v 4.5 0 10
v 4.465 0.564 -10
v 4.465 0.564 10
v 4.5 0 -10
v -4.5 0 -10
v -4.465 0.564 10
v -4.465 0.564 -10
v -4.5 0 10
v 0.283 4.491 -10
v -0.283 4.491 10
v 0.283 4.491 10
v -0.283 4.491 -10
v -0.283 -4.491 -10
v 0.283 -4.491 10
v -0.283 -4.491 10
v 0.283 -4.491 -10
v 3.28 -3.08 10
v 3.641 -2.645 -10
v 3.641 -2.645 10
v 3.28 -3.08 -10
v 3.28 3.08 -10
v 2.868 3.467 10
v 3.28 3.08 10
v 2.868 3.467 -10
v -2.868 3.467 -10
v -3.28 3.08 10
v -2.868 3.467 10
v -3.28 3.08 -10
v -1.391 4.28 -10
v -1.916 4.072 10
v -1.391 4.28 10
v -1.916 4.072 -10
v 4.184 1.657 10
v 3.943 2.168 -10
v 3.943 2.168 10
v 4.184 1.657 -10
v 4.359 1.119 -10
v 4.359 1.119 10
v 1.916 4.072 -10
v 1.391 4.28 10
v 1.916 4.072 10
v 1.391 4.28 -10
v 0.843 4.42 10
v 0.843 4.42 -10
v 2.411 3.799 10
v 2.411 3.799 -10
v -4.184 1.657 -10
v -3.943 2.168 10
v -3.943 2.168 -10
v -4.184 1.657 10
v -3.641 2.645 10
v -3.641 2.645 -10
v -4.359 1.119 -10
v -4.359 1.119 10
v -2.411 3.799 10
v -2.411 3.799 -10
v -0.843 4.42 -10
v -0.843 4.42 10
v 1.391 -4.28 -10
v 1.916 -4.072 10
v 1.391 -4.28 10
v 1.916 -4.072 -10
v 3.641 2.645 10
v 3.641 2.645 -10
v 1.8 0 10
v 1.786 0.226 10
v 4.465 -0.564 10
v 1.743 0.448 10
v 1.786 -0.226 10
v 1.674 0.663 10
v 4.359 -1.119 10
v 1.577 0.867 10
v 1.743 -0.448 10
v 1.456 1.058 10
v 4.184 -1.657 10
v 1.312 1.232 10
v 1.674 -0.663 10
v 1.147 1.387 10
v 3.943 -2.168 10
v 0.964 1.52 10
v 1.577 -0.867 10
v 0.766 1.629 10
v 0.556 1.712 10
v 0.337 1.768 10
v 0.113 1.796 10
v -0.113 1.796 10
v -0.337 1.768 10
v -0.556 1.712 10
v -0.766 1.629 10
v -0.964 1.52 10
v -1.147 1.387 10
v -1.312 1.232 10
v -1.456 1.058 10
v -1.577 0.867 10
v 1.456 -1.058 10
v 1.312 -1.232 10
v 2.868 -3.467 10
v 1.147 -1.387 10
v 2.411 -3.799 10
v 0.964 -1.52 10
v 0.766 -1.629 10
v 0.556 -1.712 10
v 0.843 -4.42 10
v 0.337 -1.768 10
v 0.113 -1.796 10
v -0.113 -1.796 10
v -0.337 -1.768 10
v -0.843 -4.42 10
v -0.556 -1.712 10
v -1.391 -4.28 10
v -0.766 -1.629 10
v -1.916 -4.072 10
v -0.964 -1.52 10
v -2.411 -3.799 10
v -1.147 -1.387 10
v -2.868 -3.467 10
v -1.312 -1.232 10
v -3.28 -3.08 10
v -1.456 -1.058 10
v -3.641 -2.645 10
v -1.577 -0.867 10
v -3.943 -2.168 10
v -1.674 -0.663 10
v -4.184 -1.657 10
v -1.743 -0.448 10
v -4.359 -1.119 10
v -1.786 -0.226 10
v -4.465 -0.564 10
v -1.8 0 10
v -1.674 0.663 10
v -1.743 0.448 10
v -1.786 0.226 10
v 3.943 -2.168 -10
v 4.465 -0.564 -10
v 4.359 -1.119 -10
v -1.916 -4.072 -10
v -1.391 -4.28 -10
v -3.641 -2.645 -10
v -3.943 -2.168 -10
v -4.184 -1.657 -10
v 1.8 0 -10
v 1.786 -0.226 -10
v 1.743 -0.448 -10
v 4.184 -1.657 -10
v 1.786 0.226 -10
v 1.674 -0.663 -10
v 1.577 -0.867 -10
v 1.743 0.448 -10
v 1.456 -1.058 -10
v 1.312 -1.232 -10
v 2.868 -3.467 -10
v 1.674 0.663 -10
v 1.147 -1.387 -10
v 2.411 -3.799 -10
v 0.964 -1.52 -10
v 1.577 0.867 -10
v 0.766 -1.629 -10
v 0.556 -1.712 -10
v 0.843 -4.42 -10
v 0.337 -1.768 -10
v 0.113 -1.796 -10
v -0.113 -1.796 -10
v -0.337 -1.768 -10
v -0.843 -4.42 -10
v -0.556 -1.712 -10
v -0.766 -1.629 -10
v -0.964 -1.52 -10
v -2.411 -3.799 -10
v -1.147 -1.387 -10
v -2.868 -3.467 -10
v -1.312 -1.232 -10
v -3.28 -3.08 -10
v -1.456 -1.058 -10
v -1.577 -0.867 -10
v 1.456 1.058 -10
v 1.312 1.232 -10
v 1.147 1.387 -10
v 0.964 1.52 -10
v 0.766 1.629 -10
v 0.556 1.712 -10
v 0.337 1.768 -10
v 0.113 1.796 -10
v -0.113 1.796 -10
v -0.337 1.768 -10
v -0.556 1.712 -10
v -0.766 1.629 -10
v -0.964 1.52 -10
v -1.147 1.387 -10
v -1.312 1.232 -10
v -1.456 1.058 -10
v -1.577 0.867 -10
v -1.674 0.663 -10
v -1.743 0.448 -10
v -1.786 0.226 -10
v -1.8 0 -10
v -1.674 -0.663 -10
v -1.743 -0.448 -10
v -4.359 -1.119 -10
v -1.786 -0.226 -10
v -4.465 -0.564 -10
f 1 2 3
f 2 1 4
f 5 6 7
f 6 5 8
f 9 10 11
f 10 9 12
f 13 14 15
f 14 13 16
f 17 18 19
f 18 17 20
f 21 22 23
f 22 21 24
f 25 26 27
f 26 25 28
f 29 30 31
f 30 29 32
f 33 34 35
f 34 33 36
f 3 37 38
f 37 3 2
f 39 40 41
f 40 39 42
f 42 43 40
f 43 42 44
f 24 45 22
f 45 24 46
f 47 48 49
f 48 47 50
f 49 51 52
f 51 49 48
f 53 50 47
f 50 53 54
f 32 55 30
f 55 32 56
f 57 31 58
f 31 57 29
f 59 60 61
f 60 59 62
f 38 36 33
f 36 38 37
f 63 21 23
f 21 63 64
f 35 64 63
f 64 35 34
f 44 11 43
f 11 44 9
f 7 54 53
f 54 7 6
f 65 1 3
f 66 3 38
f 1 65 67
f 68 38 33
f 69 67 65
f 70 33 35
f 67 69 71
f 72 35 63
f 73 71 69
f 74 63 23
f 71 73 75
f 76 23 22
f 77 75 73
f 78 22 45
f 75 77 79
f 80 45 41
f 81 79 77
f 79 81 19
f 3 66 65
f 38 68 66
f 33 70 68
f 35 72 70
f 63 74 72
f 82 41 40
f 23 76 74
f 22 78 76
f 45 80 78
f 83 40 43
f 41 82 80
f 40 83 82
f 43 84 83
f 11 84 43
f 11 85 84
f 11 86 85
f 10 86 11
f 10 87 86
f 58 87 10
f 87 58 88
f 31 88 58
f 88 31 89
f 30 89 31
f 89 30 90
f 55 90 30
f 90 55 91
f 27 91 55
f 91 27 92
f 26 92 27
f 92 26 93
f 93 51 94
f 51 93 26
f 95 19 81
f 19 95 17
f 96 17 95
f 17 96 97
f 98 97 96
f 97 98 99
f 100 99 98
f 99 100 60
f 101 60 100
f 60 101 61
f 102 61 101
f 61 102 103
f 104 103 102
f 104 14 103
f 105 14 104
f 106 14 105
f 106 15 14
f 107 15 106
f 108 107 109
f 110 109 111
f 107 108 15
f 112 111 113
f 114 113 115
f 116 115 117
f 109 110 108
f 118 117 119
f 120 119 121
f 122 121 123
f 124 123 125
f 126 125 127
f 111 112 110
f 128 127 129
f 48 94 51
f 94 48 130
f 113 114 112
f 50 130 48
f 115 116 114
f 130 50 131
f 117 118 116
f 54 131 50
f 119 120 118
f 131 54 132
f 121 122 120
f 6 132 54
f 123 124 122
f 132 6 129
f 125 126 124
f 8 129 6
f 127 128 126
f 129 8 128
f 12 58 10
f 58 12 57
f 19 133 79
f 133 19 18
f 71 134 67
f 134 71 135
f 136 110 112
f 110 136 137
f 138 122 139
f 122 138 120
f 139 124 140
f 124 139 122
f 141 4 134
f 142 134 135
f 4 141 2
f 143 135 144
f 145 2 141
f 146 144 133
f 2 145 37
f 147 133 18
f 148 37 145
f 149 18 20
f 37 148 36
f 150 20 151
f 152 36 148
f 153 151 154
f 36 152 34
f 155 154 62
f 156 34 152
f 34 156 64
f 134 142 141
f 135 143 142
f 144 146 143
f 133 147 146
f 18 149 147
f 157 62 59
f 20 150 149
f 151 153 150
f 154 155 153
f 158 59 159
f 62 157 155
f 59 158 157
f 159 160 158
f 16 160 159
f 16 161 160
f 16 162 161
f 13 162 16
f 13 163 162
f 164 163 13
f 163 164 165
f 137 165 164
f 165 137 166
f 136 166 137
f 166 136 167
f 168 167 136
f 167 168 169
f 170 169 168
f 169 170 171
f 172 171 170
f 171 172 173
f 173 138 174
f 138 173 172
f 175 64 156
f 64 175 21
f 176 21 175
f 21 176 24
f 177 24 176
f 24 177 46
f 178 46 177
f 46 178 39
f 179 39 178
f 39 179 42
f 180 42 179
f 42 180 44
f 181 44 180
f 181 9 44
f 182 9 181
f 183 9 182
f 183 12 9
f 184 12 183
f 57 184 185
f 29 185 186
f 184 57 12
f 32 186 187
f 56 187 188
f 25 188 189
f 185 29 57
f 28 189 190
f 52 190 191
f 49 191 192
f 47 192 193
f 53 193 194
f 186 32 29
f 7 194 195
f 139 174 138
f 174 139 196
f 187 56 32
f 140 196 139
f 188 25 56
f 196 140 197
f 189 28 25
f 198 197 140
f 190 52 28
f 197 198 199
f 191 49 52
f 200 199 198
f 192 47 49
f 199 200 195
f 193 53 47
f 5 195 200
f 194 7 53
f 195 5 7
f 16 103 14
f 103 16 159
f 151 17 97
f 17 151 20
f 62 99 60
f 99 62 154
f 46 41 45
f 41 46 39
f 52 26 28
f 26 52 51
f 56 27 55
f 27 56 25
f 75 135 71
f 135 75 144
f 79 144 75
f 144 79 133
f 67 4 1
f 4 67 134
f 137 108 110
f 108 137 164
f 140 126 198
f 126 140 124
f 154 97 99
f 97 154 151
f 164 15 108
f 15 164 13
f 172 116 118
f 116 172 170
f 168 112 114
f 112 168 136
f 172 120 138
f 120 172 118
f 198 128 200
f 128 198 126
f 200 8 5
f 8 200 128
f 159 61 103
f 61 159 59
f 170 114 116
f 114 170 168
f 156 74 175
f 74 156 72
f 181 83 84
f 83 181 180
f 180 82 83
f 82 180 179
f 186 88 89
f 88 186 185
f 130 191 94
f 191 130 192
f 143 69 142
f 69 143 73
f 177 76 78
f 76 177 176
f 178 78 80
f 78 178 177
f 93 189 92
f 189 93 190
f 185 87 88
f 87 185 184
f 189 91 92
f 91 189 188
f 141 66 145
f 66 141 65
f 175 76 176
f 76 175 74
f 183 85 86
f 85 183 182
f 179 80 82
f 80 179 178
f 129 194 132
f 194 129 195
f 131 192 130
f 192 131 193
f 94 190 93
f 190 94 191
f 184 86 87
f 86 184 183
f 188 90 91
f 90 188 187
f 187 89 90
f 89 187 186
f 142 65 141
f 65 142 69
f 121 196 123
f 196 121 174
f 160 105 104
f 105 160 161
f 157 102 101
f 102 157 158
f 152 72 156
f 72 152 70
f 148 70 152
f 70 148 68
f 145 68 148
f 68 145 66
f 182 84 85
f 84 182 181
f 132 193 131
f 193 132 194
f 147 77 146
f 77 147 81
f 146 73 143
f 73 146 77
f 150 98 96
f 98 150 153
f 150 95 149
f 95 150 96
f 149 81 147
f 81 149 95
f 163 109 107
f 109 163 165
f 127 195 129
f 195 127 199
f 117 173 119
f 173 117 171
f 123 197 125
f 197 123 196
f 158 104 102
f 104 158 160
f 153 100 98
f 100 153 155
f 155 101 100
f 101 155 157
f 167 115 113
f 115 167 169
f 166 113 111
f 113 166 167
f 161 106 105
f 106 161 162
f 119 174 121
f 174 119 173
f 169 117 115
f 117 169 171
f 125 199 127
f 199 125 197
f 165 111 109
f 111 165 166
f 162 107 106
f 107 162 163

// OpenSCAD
$fn = 50;


difference() {
	union() {
		translate(v = [0, 0, -10.0000000000]) {
			cylinder(h = 20, r = 4.5000000000);
		}
	}
	union() {
		translate(v = [0, 0, -100.0000000000]) {
			cylinder(h = 200, r = 1.8000000000);
		}
	}
}
